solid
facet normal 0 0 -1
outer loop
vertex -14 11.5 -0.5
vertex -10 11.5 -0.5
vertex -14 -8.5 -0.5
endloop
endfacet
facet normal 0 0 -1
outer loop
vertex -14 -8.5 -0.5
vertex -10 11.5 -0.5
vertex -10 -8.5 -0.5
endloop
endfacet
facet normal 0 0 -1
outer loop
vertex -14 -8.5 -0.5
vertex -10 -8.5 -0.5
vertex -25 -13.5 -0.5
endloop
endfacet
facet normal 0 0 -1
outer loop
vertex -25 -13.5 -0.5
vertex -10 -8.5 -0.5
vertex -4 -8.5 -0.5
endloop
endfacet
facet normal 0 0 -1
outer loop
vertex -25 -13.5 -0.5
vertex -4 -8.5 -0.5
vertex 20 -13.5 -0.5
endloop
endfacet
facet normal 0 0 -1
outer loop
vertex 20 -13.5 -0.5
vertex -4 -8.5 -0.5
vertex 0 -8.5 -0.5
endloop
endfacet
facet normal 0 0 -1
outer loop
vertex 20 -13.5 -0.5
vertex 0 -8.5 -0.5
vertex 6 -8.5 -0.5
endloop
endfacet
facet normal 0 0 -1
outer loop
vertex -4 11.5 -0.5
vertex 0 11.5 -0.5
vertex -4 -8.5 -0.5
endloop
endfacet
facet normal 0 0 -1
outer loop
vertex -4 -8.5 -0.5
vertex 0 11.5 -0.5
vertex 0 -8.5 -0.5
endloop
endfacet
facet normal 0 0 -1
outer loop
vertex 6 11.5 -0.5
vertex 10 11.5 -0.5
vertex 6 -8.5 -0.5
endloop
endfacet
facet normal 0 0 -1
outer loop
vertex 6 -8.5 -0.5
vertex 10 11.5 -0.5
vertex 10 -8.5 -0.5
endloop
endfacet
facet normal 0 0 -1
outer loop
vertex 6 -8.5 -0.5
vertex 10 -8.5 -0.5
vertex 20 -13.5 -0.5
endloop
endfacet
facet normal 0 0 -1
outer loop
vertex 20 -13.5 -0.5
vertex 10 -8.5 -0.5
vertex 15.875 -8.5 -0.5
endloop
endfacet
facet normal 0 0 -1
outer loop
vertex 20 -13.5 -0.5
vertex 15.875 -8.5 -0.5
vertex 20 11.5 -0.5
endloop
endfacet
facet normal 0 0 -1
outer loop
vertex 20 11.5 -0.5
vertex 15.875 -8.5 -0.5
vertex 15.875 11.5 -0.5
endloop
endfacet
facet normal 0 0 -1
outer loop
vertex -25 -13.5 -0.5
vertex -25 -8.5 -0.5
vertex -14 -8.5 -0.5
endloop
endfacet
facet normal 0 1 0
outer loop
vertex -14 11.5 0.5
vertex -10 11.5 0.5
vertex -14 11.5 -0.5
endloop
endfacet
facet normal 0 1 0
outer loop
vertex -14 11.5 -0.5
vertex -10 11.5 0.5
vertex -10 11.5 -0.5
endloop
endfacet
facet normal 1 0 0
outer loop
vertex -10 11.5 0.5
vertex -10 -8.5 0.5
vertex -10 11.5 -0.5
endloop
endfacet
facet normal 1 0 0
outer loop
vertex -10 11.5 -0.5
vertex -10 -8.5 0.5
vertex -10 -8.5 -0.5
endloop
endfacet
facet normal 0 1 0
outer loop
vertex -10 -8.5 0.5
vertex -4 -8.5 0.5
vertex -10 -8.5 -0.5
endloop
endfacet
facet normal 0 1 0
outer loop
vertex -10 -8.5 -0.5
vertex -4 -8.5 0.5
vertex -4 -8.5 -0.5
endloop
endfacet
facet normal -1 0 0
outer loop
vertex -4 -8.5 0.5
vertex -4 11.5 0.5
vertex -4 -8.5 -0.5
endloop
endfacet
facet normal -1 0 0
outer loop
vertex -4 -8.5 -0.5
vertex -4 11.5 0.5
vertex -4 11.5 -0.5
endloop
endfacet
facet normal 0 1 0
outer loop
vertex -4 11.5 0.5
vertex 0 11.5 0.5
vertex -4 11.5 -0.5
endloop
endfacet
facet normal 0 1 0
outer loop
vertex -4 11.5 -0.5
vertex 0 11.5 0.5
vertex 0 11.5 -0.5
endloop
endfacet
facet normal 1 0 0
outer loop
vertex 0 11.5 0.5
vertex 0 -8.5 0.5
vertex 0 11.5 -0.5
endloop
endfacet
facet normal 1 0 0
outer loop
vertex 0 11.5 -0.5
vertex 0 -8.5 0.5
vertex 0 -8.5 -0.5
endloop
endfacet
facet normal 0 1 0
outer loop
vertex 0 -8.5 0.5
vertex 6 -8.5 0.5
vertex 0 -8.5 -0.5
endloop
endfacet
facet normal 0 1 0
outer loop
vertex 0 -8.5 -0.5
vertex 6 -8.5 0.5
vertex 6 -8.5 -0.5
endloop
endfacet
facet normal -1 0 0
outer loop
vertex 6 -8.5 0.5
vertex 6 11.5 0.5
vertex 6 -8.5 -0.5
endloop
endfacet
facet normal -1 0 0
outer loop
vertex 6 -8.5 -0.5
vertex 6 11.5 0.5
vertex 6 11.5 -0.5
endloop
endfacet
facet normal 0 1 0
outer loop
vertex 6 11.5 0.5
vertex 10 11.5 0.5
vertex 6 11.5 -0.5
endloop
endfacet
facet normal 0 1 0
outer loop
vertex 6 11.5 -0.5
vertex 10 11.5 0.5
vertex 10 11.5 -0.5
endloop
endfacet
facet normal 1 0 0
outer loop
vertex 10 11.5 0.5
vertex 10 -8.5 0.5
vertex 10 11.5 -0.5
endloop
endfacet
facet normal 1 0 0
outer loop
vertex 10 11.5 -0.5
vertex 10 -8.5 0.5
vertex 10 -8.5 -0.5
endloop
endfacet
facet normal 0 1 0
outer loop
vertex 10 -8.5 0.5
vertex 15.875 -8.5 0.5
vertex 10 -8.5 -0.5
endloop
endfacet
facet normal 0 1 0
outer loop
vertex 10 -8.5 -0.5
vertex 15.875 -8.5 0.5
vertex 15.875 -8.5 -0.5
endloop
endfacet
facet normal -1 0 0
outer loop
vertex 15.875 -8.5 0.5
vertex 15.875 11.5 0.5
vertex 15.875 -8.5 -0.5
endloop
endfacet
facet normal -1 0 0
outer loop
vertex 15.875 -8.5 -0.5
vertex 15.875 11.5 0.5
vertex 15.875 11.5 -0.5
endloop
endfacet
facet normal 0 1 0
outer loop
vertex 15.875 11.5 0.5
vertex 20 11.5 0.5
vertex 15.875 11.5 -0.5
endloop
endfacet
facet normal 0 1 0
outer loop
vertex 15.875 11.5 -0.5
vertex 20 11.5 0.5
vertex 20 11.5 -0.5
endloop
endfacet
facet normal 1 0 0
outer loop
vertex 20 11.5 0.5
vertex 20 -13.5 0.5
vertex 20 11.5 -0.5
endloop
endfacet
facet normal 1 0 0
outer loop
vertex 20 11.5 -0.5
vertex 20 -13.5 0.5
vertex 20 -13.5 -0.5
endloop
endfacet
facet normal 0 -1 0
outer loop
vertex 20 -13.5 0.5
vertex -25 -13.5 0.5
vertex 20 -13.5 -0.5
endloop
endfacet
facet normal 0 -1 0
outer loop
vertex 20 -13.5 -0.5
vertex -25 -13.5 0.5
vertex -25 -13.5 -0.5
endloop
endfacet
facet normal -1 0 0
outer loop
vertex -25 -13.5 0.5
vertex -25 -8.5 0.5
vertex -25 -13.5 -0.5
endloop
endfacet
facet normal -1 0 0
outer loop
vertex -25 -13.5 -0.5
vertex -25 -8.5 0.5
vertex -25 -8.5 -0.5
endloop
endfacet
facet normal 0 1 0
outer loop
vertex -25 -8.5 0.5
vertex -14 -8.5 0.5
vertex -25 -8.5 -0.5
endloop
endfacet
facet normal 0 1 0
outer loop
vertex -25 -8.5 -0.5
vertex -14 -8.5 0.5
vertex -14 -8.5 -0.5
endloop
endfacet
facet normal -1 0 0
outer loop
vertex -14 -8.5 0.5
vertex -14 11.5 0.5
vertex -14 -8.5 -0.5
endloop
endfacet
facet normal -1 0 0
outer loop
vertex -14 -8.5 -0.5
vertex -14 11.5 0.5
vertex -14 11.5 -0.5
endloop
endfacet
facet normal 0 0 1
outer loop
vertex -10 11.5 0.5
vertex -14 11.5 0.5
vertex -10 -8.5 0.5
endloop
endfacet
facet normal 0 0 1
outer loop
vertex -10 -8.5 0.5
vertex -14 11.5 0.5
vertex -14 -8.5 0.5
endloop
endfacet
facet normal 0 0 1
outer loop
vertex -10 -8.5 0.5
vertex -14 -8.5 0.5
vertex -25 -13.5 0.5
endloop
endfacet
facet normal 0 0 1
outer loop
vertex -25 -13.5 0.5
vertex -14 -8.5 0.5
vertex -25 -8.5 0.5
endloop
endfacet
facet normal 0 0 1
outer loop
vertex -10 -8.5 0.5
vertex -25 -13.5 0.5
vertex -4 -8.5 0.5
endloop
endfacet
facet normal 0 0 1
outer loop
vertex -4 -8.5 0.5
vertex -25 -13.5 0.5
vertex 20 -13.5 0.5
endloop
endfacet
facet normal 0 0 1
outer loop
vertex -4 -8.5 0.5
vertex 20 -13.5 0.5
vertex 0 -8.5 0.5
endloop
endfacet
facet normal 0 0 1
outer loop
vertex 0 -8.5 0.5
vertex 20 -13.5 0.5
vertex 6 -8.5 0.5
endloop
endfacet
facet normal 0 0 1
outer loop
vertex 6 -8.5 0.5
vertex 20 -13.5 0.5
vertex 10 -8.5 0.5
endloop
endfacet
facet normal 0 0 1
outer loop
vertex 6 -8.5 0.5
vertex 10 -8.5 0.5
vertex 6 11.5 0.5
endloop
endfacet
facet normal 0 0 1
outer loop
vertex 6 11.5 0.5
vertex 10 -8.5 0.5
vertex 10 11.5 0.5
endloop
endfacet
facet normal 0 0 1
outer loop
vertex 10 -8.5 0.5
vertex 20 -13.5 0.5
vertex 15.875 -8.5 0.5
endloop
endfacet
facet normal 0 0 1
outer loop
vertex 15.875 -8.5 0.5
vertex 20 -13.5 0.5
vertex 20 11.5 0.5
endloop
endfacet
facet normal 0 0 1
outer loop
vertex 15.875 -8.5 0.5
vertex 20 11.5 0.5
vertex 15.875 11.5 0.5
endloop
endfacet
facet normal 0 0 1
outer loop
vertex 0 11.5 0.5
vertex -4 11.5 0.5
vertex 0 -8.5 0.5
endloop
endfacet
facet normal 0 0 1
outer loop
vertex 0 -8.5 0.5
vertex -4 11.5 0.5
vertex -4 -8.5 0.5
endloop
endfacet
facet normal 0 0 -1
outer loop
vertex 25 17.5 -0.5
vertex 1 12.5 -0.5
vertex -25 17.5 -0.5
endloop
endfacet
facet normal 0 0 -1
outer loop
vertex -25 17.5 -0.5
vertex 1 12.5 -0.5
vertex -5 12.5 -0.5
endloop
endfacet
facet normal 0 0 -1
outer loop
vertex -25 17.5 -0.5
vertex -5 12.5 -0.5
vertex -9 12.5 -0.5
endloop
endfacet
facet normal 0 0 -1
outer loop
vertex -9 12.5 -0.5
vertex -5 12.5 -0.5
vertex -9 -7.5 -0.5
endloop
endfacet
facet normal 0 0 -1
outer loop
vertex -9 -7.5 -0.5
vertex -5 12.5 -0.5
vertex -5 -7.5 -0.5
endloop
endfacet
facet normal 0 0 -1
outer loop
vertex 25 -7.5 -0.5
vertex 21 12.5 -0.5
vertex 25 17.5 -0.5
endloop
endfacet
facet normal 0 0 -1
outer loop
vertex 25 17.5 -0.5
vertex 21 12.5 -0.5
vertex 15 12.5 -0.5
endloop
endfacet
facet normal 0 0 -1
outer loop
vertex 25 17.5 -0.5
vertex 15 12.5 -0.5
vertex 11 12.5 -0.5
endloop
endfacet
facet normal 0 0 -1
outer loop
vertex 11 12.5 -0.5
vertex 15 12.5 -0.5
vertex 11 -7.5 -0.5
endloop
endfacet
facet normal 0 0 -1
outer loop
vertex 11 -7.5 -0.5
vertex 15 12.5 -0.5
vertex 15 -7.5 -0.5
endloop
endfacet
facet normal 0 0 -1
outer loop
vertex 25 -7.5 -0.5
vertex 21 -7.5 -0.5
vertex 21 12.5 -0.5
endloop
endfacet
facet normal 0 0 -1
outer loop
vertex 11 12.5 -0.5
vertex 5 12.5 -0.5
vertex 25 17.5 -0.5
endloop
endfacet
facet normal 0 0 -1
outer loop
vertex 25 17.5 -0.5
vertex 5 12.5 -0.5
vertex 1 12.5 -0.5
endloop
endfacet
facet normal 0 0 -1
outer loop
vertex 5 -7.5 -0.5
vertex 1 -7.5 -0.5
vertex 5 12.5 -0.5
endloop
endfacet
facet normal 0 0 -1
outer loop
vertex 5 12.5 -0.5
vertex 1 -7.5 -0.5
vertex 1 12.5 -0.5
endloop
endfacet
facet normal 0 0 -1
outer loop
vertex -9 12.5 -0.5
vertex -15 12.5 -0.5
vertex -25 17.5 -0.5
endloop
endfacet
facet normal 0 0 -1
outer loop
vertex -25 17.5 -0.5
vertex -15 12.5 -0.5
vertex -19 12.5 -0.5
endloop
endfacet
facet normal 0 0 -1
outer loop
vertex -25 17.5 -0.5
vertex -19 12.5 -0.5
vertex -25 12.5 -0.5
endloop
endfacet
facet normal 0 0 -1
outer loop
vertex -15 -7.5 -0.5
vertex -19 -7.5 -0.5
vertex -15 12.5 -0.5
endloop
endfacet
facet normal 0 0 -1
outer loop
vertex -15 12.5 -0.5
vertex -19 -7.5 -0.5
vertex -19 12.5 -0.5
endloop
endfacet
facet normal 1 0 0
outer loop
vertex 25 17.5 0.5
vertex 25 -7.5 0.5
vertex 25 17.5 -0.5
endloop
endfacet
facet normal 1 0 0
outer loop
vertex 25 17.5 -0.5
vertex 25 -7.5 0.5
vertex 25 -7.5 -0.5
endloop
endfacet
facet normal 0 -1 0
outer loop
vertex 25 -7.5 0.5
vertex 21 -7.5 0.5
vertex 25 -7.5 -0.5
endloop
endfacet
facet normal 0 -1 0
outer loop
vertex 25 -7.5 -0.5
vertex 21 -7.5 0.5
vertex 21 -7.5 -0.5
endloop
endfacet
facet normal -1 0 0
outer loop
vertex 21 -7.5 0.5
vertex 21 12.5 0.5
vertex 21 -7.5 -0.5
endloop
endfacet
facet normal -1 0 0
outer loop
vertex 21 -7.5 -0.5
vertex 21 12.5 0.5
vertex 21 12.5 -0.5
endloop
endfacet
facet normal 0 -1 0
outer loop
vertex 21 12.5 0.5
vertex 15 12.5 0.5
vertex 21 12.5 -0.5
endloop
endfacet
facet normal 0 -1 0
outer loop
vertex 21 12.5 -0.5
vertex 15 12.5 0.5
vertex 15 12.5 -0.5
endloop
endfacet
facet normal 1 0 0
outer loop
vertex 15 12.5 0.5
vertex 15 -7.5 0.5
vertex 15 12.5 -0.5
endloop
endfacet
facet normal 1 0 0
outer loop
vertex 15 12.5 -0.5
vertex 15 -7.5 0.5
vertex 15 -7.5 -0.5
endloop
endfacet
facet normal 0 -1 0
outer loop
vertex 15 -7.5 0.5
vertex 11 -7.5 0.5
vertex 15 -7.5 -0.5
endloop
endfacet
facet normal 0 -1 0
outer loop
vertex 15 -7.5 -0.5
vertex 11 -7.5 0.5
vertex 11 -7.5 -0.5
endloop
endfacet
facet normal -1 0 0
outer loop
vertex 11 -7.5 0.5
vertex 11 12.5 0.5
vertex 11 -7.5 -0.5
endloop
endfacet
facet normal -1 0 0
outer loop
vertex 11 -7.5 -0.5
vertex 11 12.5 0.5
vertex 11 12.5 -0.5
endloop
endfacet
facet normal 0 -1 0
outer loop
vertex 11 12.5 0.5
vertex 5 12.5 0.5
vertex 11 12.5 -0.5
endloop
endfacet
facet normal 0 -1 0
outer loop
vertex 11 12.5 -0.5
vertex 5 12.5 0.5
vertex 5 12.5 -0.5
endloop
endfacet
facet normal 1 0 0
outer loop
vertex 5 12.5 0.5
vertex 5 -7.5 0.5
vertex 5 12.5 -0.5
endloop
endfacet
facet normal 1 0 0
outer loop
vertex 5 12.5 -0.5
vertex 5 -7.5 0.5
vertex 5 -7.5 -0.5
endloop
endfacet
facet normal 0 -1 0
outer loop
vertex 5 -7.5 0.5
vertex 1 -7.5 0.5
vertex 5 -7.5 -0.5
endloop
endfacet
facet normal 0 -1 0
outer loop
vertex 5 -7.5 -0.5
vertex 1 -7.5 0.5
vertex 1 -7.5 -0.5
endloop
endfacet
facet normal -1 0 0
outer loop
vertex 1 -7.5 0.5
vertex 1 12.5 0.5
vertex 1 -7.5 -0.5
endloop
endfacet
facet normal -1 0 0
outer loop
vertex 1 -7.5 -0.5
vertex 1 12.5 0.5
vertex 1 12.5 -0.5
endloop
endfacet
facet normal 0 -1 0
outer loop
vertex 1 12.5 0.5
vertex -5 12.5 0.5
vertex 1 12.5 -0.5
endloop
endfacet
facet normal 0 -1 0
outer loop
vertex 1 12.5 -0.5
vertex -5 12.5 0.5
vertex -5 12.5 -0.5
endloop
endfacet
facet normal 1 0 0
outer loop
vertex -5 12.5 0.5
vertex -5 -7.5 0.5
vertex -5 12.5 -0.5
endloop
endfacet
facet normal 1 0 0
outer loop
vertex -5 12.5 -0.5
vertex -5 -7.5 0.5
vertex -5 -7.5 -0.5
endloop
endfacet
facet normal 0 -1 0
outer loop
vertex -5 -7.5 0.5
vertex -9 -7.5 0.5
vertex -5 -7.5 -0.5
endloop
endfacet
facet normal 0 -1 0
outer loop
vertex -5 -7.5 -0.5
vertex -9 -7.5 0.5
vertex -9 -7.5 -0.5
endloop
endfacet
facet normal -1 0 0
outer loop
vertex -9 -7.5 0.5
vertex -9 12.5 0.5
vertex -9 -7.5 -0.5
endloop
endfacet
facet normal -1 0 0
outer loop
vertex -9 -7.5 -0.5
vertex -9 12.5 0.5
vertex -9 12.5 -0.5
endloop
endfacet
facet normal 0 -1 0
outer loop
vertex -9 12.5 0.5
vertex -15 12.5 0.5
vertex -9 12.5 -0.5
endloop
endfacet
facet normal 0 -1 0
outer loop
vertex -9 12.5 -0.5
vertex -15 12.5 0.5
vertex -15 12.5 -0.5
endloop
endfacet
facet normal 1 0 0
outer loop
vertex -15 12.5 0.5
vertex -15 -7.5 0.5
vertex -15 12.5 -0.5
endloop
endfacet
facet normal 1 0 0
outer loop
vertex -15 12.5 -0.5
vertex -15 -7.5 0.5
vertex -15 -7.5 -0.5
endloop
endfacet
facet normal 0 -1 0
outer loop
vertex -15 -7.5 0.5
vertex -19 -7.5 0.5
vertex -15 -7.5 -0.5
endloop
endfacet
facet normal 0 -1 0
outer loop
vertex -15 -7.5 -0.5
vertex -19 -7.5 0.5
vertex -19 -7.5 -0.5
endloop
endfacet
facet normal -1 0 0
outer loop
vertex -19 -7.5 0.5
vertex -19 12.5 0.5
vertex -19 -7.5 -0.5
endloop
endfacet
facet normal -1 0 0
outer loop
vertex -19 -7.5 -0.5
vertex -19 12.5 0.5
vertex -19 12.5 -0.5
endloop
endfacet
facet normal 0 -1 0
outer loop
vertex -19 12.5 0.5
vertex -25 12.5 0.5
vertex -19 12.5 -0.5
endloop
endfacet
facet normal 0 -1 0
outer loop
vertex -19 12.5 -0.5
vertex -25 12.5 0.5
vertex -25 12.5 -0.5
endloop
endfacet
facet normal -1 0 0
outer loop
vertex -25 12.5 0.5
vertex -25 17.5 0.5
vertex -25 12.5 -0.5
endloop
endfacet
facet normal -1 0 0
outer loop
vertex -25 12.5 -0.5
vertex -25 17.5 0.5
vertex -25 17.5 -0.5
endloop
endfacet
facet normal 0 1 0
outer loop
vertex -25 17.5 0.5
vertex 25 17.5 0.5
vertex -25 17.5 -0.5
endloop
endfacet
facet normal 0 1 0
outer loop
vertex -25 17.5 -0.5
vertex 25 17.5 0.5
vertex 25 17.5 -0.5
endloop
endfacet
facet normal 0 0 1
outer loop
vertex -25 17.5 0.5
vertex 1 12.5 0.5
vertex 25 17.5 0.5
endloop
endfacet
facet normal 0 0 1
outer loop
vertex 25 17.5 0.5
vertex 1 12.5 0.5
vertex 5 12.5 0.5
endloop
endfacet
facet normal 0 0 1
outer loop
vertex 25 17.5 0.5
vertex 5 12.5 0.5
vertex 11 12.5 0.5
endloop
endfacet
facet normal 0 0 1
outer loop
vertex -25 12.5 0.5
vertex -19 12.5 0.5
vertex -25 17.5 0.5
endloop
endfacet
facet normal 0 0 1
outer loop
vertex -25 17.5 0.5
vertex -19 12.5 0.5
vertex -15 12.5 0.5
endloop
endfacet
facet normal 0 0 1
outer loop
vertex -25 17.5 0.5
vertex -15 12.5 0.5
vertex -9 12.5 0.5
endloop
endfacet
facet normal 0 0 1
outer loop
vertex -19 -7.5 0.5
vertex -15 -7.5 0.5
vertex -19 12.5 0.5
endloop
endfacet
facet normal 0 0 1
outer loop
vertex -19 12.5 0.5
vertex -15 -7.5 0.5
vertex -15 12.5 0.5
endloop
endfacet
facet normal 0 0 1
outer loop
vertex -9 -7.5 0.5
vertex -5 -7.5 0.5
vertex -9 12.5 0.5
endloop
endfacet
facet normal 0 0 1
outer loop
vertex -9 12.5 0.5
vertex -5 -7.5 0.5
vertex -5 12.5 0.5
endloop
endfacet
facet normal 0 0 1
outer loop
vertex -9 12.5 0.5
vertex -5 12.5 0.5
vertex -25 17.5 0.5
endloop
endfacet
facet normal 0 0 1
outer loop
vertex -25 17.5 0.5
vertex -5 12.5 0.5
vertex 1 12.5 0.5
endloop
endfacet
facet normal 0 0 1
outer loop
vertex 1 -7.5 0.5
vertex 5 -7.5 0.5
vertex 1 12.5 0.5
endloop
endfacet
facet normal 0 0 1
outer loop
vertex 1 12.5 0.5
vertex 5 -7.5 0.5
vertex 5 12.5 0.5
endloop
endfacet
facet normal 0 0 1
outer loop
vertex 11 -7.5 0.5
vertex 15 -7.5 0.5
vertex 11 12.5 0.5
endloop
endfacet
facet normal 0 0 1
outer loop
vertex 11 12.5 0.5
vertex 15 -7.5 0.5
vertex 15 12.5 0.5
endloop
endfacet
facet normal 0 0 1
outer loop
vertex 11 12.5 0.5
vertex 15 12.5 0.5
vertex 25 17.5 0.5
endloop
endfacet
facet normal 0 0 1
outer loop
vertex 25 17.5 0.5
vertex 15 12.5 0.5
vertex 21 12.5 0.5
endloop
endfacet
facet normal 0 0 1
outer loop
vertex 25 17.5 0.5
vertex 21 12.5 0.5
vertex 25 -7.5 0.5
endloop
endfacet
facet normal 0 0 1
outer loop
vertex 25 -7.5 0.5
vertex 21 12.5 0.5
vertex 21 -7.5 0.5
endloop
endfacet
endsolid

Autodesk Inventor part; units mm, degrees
ref_plane "YZ Plane" through (0, 0, 0) normal (1, 0, 0) x (0, 1, 0)
ref_plane "XZ Plane" through (0, 0, 0) normal (0, 1, 0) x (-1, 0, 0)
ref_plane "XY Plane" through (0, 0, 0) normal (0, 0, 1) x (1, 0, 0)
sketch "Sketch1" plane through (0, 0, 0) normal (0, 0, 1) x (1, 0, 0)
  point P0 (0, 0)
sketch "Sketch2" plane through (0, 0, 0) normal (0, 0, 1) x (1, 0, 0)
  line L0 (-25, 17.5) -> (25, 17.5)
  line L1 (25, 17.5) -> (25, -7.5)
  line L2 (-25, 17.5) -> (-20, 17.5)
  line L3 (-25, 17.5) -> (-25, 12.5)
  line L4 (25, -7.5) -> (21, -7.5)
  line L5 (21, -7.5) -> (21, 12.5)
  line L6 (21, 12.5) -> (15, 12.5)
  line L7 (15, 12.5) -> (15, -7.5)
  line L8 (15, -7.5) -> (11, -7.5)
  line L9 (11, -7.5) -> (11, 12.5)
  line L10 (11, 12.5) -> (5, 12.5)
  line L11 (5, 12.5) -> (5, -7.5)
  line L12 (5, -7.5) -> (1, -7.5)
  line L13 (1, -7.5) -> (1, 12.5)
  line L14 (1, 12.5) -> (-5, 12.5)
  line L15 (-5, 12.5) -> (-5, -7.5)
  line L16 (-5, -7.5) -> (-9, -7.5)
  line L17 (-9, -7.5) -> (-9, 12.5)
  line L18 (-9, 12.5) -> (-15, 12.5)
  line L19 (-15, 12.5) -> (-15, -7.5)
  line L20 (-15, -7.5) -> (-19, -7.5)
  line L21 (-19, -7.5) -> (-19, 12.5)
  line L22 (-25, 12.5) -> (-19, 12.5)
  line L23 (20, 11.5) -> (15.875, 11.5)
  line L24 (15.875, 11.5) -> (15.875, -7.5)
  line L25 (15.875, -7.5) -> (15.875, -8.5)
  line L26 (15.875, -8.5) -> (10, -8.5)
  line L27 (10, -8.5) -> (10, 11.5)
  line L28 (10, 11.5) -> (6, 11.5)
  line L29 (6, 11.5) -> (6, -8.5)
  line L30 (6, -8.5) -> (0, -8.5)
  line L31 (0, -8.5) -> (0, 11.5)
  line L32 (0, 11.5) -> (-4, 11.5)
  line L33 (-4, 11.5) -> (-4, -8.5)
  line L34 (-4, -8.5) -> (-10, -8.5)
  line L35 (-10, -8.5) -> (-10, 3.175)
  line L36 (-10, 11.5) -> (-10, 3.175)
  line L37 (-10, 11.5) -> (-14, 11.5)
  line L38 (-14, 11.5) -> (-14, 3.175)
  line L39 (-14, -8.5) -> (-14, 3.175)
  line L40 (-14, -8.5) -> (-25, -8.5)
  line L41 (-25, -13.5) -> (20, -13.5)
  line L42 (20, 11.5) -> (20, -13.5)
  line L43 (-25, -8.5) -> (-25, -13.5)
  point P0 (0, 0)
  dimension "d8" = 50
  dimension "d11" = 5
  dimension "d13" = 4
  dimension "d14" = 25
  dimension "d16" = 6
  dimension "d27" = 6
  dimension "d28" = 6
  dimension "d29" = 6
  dimension "d30" = 6
  dimension "d48" = 5
sketch "Sketch3" plane through (0, 0, 0) normal (0, 0, 1) x (1, 0, 0)
  point P0 (0, 0)
extrude "Extrusion1" add sketch "Sketch2" along normal mid plane 1
sketch "Sketch4" plane through (0, 0, 0.5) normal (0, 0, 1) x (1, 0, 0)
  point P0 (0, 0)
properties part number "Sensor-001-001_3DPrint"
